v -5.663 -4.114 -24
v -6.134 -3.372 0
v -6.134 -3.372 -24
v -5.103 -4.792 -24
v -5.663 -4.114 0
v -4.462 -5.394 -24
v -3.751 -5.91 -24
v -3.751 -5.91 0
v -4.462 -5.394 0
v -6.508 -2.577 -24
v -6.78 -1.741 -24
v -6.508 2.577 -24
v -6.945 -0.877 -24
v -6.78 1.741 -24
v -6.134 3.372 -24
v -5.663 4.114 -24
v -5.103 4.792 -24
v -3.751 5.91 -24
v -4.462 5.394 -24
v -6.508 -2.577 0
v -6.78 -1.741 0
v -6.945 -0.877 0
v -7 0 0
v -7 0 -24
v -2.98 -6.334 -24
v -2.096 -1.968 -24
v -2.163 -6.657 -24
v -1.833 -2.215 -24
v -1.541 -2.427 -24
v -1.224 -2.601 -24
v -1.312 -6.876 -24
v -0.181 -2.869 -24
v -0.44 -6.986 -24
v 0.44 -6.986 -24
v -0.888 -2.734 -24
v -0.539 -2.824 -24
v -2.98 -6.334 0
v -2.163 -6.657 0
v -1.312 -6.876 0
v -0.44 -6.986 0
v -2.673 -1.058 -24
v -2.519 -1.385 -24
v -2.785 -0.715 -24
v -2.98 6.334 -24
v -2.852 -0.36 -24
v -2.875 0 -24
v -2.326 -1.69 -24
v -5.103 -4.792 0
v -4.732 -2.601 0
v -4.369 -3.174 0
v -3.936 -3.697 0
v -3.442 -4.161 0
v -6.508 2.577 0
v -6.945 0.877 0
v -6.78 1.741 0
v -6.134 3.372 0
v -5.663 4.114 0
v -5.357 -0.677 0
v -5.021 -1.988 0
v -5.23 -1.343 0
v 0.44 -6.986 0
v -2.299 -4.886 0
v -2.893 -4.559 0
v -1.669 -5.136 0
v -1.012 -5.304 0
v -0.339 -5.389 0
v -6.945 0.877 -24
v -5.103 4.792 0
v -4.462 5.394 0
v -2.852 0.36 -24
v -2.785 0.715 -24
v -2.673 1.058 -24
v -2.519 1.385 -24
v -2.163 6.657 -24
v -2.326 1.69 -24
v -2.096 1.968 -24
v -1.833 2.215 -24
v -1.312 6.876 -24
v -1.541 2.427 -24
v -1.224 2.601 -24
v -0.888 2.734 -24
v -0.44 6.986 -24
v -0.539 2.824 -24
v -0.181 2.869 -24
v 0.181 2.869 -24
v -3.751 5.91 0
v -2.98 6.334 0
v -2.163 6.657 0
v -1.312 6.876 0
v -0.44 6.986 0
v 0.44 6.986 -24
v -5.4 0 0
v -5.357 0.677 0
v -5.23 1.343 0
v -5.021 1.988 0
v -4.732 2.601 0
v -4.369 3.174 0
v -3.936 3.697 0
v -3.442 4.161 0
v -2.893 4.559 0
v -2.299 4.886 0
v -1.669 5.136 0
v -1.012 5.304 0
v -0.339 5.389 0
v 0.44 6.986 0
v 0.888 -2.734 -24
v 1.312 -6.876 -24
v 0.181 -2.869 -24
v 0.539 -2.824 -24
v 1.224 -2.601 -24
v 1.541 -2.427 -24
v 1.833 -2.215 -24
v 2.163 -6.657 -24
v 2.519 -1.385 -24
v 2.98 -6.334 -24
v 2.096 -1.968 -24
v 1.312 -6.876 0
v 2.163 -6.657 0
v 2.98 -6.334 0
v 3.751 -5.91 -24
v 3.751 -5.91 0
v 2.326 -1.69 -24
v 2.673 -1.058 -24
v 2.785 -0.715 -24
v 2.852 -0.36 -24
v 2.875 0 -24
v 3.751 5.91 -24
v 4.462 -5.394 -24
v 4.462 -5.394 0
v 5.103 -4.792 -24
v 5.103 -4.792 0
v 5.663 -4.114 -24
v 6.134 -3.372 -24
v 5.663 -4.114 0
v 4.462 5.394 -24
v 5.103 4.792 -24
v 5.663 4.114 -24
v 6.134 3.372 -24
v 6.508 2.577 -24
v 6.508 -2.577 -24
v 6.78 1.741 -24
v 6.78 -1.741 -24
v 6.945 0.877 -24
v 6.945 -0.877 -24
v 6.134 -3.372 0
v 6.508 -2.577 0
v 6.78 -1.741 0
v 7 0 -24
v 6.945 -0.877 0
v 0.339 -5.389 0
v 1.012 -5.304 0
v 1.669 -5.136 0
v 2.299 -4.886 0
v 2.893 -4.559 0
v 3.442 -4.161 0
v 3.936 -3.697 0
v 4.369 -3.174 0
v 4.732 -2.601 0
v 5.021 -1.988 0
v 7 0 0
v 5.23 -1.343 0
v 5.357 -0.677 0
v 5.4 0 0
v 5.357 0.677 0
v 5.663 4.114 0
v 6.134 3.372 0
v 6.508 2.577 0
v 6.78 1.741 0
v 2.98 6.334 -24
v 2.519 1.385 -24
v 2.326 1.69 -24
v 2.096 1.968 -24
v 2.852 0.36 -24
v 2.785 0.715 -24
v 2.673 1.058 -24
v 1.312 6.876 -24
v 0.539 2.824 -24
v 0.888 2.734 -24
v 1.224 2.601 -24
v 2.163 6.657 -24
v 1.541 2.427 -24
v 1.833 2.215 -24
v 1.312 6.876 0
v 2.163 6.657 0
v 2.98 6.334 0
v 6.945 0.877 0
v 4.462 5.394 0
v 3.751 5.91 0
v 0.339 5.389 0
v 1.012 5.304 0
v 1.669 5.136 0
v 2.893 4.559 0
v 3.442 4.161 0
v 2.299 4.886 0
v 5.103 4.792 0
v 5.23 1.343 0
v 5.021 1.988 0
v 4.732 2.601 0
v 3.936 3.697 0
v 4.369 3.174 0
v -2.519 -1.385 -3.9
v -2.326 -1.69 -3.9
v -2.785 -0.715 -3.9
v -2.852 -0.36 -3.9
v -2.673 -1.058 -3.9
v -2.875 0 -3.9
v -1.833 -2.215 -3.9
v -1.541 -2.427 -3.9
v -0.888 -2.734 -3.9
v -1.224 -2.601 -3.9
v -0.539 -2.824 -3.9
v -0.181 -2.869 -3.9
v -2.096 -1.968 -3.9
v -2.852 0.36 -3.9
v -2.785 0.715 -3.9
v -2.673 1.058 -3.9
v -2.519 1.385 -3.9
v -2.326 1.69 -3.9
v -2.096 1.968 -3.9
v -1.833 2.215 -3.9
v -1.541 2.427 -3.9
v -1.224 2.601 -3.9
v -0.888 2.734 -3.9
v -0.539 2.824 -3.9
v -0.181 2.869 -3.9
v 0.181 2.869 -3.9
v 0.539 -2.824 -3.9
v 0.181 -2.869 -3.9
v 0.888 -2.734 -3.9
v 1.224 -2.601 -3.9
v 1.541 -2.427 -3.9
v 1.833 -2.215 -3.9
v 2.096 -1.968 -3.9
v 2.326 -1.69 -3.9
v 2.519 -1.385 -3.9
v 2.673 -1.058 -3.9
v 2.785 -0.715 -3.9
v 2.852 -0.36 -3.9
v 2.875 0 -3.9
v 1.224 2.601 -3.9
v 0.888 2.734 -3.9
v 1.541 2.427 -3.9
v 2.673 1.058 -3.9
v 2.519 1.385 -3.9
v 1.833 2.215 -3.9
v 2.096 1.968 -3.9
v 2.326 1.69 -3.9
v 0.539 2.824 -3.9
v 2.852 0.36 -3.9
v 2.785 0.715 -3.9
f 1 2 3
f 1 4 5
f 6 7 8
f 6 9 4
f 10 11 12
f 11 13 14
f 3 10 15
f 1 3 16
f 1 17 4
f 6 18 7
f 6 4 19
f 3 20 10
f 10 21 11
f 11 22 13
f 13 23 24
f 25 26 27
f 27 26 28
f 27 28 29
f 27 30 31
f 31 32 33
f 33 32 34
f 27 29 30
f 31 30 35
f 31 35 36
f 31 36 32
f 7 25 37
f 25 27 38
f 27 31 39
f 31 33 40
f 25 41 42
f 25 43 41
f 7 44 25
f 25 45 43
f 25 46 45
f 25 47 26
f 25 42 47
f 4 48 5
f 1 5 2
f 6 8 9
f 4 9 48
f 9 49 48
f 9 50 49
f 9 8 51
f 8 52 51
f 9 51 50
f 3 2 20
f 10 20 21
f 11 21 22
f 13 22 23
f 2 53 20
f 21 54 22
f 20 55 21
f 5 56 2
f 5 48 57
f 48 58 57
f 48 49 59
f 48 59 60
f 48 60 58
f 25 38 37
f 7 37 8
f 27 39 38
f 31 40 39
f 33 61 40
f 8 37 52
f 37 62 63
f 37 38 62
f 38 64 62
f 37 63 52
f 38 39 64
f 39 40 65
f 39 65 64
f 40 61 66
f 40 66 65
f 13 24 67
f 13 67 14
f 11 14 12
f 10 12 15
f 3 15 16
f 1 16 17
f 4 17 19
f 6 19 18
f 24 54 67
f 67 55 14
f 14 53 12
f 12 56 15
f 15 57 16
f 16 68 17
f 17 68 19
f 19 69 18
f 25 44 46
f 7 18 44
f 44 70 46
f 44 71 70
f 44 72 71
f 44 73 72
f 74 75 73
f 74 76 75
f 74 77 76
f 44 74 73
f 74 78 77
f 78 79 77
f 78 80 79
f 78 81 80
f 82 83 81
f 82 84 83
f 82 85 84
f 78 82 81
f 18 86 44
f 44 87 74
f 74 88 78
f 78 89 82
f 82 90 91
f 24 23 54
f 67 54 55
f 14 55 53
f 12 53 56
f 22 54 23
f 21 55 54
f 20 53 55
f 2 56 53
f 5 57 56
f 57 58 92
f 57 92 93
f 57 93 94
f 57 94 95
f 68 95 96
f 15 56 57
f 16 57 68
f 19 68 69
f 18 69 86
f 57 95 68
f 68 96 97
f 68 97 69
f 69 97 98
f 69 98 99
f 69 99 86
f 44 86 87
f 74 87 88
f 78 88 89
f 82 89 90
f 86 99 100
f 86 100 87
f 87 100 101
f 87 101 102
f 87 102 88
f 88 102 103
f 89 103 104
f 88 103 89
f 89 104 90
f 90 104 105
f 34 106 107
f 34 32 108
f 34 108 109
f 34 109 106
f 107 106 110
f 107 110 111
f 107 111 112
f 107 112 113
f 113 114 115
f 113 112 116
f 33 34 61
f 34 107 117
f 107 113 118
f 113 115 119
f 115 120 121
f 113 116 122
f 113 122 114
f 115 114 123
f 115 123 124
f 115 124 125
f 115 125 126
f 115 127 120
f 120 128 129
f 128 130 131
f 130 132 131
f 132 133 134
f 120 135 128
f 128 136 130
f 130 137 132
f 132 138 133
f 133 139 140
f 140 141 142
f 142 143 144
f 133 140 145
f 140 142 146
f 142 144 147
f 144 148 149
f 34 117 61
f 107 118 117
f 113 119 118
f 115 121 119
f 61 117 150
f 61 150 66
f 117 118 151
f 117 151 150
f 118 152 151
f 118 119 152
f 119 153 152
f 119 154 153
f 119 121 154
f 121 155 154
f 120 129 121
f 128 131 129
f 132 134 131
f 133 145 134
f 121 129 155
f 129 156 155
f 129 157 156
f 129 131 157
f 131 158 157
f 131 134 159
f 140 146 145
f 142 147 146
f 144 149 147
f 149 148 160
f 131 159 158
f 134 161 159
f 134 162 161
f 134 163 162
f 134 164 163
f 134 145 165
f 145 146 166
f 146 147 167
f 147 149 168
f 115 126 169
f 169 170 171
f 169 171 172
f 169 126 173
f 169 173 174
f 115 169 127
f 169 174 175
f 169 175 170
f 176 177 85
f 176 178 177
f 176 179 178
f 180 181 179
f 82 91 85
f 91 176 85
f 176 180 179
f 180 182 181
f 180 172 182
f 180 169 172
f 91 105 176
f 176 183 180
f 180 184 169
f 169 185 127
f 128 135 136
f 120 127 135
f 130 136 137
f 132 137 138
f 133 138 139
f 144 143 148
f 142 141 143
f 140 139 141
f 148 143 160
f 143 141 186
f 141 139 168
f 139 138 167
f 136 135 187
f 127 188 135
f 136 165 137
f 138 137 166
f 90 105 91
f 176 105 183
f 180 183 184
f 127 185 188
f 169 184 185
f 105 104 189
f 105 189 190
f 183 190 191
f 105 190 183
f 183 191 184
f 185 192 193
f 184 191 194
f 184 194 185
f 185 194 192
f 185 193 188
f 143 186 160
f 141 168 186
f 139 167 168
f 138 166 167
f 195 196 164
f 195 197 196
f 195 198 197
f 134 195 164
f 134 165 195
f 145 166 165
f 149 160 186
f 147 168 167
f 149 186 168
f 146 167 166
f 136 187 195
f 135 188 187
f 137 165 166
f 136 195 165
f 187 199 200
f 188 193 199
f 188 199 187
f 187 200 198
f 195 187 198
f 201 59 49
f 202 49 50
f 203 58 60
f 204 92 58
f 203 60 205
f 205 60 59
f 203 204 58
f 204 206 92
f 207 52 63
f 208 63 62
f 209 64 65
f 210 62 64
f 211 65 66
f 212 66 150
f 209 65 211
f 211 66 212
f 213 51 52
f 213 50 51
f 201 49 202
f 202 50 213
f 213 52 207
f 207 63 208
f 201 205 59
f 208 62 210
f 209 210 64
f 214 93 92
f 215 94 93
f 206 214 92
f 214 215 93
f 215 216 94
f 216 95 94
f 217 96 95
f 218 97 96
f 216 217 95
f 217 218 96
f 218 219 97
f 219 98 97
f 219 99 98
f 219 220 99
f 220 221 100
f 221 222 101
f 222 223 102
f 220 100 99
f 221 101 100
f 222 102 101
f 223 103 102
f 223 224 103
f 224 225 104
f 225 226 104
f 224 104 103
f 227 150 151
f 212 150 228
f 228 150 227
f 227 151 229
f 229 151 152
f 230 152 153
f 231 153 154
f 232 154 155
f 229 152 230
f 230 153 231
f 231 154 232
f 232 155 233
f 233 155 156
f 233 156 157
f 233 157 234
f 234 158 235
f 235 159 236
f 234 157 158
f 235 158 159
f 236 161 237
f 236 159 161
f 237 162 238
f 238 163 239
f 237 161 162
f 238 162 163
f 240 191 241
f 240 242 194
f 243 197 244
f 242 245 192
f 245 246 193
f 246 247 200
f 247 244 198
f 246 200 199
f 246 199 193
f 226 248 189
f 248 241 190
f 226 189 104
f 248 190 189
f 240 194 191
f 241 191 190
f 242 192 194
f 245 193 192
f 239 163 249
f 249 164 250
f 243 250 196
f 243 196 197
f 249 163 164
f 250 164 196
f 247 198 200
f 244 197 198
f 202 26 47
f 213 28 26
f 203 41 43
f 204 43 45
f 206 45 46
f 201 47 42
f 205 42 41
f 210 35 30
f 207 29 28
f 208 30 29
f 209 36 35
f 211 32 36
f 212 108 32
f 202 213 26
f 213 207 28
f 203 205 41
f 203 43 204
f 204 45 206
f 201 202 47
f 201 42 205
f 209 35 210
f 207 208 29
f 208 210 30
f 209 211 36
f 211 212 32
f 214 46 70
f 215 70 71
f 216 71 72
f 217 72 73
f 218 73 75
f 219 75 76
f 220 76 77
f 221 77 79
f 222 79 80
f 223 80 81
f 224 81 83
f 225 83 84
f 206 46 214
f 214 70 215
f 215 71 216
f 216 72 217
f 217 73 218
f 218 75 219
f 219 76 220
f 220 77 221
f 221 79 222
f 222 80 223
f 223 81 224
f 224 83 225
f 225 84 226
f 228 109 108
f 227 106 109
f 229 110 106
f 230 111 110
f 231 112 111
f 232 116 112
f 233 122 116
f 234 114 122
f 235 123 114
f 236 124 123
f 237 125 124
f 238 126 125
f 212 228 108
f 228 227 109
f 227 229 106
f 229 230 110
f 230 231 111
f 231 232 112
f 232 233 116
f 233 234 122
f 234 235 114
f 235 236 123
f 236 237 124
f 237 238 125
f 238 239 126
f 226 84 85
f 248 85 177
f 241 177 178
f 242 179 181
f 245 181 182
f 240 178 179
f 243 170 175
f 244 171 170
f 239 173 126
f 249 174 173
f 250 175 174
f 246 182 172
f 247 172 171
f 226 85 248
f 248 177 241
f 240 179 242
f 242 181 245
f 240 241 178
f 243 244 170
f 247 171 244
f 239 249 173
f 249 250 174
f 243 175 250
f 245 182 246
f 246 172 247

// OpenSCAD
$fn = 50;


difference() {
	union() {
		translate(v = [0, 0, -24.0000000000]) {
			cylinder(h = 24, r = 7.0000000000);
		}
		#translate(v = [0, 0, -27.0000000000]) {
			cylinder(h = 27, r = 2.8750000000);
		}
	}
	union() {
		translate(v = [0, 0, 0]) {
			rotate(a = [0, 0, 0]) {
				difference() {
					union() {
						translate(v = [0, 0, -27.0000000000]) {
							cylinder(h = 27, r = 2.6000000000);
						}
						translate(v = [0, 0, -3.9000000000]) {
							cylinder(h = 3.9000000000, r1 = 2.8750000000, r2 = 5.4000000000);
						}
						translate(v = [0, 0, -27.0000000000]) {
							cylinder(h = 27, r = 2.8750000000);
						}
						translate(v = [0, 0, -27.0000000000]) {
							cylinder(h = 27, r = 2.6000000000);
						}
					}
					union();
				}
			}
		}
	}
}
